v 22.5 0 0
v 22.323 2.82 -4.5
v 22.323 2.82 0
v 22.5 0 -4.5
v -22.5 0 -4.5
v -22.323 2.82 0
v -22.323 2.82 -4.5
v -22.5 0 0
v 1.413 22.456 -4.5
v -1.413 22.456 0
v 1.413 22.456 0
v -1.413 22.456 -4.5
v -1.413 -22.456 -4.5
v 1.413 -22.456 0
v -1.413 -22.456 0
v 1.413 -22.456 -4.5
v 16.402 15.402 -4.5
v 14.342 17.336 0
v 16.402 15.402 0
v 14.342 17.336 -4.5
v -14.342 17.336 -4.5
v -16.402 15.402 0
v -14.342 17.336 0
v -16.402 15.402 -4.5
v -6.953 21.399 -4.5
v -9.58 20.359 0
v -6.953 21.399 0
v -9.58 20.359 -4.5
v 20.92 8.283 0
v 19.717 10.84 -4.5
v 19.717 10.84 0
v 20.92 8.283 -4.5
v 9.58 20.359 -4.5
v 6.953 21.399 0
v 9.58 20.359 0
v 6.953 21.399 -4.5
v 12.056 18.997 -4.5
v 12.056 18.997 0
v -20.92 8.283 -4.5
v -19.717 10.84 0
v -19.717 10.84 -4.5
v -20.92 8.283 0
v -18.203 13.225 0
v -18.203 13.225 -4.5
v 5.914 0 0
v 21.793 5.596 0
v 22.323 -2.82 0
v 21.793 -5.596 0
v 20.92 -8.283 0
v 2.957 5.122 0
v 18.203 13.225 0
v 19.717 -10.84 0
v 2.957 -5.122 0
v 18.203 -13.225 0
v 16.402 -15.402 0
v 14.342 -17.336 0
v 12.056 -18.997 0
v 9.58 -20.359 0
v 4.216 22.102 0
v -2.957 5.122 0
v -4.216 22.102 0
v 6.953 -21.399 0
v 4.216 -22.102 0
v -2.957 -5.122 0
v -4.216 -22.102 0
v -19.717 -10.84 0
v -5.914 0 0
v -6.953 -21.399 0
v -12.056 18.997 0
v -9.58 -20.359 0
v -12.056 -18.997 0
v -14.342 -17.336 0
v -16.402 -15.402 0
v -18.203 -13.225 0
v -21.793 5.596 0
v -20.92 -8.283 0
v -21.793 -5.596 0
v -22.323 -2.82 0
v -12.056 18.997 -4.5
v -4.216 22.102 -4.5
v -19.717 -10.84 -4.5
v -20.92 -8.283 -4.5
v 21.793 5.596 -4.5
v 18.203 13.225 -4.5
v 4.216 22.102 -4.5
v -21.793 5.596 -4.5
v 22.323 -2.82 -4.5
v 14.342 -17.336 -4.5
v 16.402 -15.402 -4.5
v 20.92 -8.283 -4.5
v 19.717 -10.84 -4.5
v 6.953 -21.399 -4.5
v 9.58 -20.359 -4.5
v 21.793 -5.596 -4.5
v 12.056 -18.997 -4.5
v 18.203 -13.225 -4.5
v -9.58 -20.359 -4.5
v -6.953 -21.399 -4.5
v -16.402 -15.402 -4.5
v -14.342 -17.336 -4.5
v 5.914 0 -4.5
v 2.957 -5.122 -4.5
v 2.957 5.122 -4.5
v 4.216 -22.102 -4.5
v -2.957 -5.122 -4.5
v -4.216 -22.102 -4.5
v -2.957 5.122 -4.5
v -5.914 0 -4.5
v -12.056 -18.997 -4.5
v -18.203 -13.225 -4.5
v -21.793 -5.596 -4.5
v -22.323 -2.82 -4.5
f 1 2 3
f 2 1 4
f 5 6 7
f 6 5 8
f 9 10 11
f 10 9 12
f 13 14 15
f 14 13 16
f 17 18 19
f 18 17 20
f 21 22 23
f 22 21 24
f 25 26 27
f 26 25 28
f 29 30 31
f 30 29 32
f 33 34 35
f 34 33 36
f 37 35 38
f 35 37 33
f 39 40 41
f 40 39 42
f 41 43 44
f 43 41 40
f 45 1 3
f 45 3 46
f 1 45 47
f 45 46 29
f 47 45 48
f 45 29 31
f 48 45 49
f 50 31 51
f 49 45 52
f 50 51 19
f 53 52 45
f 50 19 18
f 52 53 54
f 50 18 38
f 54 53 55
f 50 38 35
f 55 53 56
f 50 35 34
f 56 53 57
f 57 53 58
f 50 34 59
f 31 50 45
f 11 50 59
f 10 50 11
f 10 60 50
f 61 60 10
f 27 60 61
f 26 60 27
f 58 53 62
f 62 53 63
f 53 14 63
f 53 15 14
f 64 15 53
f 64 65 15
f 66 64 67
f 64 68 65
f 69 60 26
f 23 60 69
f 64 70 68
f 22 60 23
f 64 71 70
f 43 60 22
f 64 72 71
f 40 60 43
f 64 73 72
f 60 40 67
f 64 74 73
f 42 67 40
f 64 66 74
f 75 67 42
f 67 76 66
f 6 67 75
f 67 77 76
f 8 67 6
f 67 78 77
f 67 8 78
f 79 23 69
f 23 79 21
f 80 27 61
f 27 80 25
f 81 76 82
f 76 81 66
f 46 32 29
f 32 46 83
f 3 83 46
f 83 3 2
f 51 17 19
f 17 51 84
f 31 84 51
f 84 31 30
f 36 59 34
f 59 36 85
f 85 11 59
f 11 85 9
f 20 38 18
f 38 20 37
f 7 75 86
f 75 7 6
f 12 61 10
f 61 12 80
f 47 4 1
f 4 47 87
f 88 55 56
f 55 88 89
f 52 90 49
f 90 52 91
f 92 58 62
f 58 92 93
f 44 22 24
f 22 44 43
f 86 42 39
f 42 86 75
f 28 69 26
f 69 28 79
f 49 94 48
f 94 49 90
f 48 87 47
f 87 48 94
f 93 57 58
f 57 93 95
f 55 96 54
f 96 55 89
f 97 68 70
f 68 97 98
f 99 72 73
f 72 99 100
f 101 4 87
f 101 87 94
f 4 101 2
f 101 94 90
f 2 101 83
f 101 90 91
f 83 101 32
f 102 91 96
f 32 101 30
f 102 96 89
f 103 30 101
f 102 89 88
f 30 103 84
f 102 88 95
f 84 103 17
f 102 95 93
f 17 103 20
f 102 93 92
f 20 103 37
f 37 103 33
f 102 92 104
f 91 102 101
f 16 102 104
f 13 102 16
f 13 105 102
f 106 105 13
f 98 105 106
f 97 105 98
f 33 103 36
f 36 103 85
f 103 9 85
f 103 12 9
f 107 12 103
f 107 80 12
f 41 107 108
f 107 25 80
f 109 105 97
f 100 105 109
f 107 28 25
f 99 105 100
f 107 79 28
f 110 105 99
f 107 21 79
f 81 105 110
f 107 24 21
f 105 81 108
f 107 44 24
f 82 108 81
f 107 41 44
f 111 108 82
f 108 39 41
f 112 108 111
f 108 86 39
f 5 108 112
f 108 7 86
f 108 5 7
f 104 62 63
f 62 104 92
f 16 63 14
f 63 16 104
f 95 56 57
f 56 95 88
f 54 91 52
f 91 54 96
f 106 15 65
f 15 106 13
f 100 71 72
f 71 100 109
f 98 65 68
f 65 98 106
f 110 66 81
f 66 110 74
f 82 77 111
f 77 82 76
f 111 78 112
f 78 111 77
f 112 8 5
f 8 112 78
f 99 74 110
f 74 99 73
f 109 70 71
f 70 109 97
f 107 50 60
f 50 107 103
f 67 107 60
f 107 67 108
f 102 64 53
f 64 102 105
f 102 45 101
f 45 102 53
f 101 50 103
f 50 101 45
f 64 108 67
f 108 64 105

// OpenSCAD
$fn = 50;


difference() {
	union() {
		translate(v = [0, 0, -4.5000000000]) {
			cylinder(h = 4.5000000000, r = 22.5000000000);
		}
		translate(v = [0, 0, -3.0000000000]) {
			cylinder(h = 3, r = 2.8750000000);
		}
	}
	union() {
		translate(v = [0, 0, 0]) {
			rotate(a = [0, 0, 0]) {
				difference() {
					union() {
						translate(v = [0, 0, -5]) {
							linear_extrude(height = 5) {
								polygon(points = [[5.9142500000, 0.0000000000], [2.9571250000, 5.1218907443], [-2.9571250000, 5.1218907443], [-5.9142500000, 0.0000000000], [-2.9571250000, -5.1218907443], [2.9571250000, -5.1218907443]]);
							}
						}
					}
					union();
				}
			}
		}
		#translate(v = [0, 0, -100.0000000000]) {
			cylinder(h = 200, r = 3.2500000000);
		}
	}
}
